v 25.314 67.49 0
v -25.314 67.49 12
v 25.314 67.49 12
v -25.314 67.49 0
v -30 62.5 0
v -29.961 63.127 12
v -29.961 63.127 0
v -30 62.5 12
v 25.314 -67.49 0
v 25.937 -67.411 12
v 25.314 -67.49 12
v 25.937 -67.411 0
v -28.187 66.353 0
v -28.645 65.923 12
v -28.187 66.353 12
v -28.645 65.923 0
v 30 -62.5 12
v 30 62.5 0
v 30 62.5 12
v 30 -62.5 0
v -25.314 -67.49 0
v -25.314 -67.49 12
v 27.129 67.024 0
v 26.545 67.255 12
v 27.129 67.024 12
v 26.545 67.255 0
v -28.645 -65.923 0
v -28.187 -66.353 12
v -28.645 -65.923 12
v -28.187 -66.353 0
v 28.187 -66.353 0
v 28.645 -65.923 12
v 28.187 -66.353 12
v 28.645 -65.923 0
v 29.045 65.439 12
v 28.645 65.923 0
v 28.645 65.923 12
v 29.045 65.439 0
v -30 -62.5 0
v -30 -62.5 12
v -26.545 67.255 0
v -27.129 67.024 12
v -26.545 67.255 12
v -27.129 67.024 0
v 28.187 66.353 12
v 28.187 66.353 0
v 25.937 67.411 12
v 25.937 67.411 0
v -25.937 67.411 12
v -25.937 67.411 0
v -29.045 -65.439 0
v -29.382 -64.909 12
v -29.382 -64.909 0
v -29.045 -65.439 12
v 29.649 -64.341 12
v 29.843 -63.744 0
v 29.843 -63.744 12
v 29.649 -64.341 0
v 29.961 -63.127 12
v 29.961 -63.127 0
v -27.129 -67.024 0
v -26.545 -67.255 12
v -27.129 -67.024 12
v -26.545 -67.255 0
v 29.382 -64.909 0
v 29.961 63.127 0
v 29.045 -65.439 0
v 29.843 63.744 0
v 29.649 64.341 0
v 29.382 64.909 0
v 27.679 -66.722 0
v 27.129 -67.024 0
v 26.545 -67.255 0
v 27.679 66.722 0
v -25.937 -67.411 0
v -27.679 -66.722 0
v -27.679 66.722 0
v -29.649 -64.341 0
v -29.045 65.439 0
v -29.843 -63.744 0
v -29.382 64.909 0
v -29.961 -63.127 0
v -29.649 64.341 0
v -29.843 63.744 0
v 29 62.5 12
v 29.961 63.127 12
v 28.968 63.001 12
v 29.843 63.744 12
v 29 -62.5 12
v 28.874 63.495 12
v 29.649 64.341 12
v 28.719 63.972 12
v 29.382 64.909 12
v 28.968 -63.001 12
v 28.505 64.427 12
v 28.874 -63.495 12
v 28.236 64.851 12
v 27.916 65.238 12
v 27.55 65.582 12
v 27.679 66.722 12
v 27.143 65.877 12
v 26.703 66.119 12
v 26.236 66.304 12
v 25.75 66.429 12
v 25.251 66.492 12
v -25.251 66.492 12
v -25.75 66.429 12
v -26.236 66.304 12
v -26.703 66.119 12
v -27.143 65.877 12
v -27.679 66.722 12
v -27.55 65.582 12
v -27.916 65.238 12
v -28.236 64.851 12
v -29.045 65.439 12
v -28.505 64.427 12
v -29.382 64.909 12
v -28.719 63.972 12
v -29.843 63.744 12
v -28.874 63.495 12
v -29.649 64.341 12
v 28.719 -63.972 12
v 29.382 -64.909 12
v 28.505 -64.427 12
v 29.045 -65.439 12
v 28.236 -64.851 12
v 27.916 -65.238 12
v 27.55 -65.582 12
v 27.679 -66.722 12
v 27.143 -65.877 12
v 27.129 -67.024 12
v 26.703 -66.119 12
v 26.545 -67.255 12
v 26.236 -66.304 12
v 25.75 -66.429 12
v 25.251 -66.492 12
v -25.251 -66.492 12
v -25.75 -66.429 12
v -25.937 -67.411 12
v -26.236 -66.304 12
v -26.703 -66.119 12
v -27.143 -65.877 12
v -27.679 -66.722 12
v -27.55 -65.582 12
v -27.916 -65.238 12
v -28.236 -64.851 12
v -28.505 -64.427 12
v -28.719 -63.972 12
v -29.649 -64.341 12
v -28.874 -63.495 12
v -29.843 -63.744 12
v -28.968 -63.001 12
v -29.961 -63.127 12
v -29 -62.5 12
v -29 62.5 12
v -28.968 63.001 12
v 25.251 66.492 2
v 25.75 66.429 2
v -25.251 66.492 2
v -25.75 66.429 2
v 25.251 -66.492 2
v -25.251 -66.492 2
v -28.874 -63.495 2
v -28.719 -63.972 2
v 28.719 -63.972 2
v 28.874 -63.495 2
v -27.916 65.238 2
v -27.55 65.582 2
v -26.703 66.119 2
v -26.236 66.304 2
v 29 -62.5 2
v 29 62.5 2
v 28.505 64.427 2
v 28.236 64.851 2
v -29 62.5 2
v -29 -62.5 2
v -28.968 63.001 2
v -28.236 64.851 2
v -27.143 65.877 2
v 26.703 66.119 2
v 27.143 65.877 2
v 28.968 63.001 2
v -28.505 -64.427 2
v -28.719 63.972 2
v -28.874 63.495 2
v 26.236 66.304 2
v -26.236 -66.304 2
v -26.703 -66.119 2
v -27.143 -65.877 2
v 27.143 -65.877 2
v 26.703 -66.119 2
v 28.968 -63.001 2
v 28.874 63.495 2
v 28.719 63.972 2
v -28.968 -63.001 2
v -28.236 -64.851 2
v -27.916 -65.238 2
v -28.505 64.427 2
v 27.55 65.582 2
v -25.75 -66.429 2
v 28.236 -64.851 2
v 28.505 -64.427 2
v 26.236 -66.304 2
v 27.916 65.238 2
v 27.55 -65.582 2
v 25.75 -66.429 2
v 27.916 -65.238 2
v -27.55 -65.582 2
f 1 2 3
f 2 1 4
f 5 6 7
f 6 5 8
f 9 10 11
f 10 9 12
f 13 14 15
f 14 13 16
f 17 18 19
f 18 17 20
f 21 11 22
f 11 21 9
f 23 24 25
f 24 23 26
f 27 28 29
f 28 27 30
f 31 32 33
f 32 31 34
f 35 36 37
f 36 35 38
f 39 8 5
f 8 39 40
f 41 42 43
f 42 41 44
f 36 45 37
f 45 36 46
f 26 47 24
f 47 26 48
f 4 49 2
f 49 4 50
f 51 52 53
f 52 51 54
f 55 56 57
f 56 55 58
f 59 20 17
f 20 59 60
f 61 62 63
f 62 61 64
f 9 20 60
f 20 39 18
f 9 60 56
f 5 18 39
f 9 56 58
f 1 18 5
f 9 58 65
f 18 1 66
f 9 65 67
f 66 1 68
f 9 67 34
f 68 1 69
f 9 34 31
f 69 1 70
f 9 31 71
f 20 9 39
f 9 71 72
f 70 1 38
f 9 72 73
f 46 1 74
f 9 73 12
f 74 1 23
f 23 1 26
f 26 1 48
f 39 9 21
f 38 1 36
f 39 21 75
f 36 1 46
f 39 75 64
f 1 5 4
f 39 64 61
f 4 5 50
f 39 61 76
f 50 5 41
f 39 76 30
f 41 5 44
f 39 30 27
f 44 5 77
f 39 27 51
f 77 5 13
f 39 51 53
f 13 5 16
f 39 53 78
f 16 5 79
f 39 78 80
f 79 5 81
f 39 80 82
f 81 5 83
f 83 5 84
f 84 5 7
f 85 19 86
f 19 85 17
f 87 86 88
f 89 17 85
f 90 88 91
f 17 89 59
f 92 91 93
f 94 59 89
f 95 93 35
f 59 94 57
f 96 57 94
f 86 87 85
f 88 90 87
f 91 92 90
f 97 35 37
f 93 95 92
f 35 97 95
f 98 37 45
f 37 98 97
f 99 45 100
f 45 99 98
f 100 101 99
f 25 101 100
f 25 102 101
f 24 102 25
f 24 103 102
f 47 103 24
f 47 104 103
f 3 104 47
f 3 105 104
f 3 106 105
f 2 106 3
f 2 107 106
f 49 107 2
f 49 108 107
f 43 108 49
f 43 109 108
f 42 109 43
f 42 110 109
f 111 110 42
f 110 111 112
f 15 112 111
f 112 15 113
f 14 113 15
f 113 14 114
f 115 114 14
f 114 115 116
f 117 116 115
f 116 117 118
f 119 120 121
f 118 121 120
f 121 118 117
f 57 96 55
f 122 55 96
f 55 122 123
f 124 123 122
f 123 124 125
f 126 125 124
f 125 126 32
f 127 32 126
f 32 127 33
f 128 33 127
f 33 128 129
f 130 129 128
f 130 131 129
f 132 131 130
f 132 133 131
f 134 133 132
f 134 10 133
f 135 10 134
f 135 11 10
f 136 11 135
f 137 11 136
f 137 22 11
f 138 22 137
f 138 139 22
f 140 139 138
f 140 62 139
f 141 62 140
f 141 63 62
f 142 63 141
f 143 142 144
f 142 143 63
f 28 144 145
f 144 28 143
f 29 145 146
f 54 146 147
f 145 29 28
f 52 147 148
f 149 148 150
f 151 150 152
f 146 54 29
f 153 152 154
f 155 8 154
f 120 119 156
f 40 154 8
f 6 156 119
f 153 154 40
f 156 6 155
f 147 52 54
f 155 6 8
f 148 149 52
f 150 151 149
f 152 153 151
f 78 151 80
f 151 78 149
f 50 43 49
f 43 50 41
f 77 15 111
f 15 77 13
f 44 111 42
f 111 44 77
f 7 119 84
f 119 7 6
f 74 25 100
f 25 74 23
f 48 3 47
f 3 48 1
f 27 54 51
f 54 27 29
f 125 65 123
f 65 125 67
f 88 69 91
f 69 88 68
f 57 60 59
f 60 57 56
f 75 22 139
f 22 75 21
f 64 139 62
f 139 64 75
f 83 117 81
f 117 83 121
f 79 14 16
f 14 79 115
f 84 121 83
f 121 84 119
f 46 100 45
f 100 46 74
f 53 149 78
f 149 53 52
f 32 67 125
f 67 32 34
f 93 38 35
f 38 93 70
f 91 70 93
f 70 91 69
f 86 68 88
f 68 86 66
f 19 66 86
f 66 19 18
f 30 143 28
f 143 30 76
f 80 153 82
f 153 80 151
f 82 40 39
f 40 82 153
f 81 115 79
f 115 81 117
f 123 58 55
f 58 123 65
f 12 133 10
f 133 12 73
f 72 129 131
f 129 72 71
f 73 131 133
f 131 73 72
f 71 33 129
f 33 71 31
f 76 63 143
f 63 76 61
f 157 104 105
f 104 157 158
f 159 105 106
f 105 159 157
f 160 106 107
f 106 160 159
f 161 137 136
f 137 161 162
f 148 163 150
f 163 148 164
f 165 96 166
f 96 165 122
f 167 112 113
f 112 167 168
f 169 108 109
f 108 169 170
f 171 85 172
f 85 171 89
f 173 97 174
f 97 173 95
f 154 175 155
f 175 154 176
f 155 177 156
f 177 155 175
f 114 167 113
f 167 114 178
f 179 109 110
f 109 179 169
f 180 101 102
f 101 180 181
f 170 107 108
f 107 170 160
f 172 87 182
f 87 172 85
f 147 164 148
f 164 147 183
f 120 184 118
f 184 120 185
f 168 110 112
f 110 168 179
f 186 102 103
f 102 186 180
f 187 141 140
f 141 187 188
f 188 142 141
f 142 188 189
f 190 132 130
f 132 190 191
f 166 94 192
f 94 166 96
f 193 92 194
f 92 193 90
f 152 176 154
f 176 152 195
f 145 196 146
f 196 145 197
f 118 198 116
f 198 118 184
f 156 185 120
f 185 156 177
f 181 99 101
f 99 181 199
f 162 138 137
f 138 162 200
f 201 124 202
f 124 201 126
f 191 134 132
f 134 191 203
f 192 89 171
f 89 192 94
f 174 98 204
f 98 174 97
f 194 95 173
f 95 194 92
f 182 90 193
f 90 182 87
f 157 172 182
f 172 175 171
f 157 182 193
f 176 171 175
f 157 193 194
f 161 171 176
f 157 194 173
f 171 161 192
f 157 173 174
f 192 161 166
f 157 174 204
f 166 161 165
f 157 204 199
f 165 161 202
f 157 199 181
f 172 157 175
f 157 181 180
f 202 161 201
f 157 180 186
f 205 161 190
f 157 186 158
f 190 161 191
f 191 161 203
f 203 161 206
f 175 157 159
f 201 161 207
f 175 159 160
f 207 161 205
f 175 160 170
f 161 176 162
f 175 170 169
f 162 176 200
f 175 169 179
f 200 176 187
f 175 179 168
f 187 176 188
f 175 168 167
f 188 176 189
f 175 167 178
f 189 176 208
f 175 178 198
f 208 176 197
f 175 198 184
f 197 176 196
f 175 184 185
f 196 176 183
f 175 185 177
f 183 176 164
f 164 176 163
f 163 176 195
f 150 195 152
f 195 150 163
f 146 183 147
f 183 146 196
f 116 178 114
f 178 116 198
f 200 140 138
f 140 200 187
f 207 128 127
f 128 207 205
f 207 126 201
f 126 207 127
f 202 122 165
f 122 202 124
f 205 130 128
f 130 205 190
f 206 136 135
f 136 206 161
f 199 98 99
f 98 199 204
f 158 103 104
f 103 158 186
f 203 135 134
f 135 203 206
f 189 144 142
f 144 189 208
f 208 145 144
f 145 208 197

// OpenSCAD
$fn = 50;


difference() {
	union() {
		hull() {
			translate(v = [-25.0000000000, 62.5000000000, 0]) {
				cylinder(h = 12, r = 5);
			}
			translate(v = [25.0000000000, 62.5000000000, 0]) {
				cylinder(h = 12, r = 5);
			}
			translate(v = [-25.0000000000, -62.5000000000, 0]) {
				cylinder(h = 12, r = 5);
			}
			translate(v = [25.0000000000, -62.5000000000, 0]) {
				cylinder(h = 12, r = 5);
			}
		}
	}
	union() {
		translate(v = [0, 0, 2]) {
			hull() {
				translate(v = [-25.0000000000, 62.5000000000, 0]) {
					cylinder(h = 10, r = 4);
				}
				translate(v = [25.0000000000, 62.5000000000, 0]) {
					cylinder(h = 10, r = 4);
				}
				translate(v = [-25.0000000000, -62.5000000000, 0]) {
					cylinder(h = 10, r = 4);
				}
				translate(v = [25.0000000000, -62.5000000000, 0]) {
					cylinder(h = 10, r = 4);
				}
			}
		}
	}
}
